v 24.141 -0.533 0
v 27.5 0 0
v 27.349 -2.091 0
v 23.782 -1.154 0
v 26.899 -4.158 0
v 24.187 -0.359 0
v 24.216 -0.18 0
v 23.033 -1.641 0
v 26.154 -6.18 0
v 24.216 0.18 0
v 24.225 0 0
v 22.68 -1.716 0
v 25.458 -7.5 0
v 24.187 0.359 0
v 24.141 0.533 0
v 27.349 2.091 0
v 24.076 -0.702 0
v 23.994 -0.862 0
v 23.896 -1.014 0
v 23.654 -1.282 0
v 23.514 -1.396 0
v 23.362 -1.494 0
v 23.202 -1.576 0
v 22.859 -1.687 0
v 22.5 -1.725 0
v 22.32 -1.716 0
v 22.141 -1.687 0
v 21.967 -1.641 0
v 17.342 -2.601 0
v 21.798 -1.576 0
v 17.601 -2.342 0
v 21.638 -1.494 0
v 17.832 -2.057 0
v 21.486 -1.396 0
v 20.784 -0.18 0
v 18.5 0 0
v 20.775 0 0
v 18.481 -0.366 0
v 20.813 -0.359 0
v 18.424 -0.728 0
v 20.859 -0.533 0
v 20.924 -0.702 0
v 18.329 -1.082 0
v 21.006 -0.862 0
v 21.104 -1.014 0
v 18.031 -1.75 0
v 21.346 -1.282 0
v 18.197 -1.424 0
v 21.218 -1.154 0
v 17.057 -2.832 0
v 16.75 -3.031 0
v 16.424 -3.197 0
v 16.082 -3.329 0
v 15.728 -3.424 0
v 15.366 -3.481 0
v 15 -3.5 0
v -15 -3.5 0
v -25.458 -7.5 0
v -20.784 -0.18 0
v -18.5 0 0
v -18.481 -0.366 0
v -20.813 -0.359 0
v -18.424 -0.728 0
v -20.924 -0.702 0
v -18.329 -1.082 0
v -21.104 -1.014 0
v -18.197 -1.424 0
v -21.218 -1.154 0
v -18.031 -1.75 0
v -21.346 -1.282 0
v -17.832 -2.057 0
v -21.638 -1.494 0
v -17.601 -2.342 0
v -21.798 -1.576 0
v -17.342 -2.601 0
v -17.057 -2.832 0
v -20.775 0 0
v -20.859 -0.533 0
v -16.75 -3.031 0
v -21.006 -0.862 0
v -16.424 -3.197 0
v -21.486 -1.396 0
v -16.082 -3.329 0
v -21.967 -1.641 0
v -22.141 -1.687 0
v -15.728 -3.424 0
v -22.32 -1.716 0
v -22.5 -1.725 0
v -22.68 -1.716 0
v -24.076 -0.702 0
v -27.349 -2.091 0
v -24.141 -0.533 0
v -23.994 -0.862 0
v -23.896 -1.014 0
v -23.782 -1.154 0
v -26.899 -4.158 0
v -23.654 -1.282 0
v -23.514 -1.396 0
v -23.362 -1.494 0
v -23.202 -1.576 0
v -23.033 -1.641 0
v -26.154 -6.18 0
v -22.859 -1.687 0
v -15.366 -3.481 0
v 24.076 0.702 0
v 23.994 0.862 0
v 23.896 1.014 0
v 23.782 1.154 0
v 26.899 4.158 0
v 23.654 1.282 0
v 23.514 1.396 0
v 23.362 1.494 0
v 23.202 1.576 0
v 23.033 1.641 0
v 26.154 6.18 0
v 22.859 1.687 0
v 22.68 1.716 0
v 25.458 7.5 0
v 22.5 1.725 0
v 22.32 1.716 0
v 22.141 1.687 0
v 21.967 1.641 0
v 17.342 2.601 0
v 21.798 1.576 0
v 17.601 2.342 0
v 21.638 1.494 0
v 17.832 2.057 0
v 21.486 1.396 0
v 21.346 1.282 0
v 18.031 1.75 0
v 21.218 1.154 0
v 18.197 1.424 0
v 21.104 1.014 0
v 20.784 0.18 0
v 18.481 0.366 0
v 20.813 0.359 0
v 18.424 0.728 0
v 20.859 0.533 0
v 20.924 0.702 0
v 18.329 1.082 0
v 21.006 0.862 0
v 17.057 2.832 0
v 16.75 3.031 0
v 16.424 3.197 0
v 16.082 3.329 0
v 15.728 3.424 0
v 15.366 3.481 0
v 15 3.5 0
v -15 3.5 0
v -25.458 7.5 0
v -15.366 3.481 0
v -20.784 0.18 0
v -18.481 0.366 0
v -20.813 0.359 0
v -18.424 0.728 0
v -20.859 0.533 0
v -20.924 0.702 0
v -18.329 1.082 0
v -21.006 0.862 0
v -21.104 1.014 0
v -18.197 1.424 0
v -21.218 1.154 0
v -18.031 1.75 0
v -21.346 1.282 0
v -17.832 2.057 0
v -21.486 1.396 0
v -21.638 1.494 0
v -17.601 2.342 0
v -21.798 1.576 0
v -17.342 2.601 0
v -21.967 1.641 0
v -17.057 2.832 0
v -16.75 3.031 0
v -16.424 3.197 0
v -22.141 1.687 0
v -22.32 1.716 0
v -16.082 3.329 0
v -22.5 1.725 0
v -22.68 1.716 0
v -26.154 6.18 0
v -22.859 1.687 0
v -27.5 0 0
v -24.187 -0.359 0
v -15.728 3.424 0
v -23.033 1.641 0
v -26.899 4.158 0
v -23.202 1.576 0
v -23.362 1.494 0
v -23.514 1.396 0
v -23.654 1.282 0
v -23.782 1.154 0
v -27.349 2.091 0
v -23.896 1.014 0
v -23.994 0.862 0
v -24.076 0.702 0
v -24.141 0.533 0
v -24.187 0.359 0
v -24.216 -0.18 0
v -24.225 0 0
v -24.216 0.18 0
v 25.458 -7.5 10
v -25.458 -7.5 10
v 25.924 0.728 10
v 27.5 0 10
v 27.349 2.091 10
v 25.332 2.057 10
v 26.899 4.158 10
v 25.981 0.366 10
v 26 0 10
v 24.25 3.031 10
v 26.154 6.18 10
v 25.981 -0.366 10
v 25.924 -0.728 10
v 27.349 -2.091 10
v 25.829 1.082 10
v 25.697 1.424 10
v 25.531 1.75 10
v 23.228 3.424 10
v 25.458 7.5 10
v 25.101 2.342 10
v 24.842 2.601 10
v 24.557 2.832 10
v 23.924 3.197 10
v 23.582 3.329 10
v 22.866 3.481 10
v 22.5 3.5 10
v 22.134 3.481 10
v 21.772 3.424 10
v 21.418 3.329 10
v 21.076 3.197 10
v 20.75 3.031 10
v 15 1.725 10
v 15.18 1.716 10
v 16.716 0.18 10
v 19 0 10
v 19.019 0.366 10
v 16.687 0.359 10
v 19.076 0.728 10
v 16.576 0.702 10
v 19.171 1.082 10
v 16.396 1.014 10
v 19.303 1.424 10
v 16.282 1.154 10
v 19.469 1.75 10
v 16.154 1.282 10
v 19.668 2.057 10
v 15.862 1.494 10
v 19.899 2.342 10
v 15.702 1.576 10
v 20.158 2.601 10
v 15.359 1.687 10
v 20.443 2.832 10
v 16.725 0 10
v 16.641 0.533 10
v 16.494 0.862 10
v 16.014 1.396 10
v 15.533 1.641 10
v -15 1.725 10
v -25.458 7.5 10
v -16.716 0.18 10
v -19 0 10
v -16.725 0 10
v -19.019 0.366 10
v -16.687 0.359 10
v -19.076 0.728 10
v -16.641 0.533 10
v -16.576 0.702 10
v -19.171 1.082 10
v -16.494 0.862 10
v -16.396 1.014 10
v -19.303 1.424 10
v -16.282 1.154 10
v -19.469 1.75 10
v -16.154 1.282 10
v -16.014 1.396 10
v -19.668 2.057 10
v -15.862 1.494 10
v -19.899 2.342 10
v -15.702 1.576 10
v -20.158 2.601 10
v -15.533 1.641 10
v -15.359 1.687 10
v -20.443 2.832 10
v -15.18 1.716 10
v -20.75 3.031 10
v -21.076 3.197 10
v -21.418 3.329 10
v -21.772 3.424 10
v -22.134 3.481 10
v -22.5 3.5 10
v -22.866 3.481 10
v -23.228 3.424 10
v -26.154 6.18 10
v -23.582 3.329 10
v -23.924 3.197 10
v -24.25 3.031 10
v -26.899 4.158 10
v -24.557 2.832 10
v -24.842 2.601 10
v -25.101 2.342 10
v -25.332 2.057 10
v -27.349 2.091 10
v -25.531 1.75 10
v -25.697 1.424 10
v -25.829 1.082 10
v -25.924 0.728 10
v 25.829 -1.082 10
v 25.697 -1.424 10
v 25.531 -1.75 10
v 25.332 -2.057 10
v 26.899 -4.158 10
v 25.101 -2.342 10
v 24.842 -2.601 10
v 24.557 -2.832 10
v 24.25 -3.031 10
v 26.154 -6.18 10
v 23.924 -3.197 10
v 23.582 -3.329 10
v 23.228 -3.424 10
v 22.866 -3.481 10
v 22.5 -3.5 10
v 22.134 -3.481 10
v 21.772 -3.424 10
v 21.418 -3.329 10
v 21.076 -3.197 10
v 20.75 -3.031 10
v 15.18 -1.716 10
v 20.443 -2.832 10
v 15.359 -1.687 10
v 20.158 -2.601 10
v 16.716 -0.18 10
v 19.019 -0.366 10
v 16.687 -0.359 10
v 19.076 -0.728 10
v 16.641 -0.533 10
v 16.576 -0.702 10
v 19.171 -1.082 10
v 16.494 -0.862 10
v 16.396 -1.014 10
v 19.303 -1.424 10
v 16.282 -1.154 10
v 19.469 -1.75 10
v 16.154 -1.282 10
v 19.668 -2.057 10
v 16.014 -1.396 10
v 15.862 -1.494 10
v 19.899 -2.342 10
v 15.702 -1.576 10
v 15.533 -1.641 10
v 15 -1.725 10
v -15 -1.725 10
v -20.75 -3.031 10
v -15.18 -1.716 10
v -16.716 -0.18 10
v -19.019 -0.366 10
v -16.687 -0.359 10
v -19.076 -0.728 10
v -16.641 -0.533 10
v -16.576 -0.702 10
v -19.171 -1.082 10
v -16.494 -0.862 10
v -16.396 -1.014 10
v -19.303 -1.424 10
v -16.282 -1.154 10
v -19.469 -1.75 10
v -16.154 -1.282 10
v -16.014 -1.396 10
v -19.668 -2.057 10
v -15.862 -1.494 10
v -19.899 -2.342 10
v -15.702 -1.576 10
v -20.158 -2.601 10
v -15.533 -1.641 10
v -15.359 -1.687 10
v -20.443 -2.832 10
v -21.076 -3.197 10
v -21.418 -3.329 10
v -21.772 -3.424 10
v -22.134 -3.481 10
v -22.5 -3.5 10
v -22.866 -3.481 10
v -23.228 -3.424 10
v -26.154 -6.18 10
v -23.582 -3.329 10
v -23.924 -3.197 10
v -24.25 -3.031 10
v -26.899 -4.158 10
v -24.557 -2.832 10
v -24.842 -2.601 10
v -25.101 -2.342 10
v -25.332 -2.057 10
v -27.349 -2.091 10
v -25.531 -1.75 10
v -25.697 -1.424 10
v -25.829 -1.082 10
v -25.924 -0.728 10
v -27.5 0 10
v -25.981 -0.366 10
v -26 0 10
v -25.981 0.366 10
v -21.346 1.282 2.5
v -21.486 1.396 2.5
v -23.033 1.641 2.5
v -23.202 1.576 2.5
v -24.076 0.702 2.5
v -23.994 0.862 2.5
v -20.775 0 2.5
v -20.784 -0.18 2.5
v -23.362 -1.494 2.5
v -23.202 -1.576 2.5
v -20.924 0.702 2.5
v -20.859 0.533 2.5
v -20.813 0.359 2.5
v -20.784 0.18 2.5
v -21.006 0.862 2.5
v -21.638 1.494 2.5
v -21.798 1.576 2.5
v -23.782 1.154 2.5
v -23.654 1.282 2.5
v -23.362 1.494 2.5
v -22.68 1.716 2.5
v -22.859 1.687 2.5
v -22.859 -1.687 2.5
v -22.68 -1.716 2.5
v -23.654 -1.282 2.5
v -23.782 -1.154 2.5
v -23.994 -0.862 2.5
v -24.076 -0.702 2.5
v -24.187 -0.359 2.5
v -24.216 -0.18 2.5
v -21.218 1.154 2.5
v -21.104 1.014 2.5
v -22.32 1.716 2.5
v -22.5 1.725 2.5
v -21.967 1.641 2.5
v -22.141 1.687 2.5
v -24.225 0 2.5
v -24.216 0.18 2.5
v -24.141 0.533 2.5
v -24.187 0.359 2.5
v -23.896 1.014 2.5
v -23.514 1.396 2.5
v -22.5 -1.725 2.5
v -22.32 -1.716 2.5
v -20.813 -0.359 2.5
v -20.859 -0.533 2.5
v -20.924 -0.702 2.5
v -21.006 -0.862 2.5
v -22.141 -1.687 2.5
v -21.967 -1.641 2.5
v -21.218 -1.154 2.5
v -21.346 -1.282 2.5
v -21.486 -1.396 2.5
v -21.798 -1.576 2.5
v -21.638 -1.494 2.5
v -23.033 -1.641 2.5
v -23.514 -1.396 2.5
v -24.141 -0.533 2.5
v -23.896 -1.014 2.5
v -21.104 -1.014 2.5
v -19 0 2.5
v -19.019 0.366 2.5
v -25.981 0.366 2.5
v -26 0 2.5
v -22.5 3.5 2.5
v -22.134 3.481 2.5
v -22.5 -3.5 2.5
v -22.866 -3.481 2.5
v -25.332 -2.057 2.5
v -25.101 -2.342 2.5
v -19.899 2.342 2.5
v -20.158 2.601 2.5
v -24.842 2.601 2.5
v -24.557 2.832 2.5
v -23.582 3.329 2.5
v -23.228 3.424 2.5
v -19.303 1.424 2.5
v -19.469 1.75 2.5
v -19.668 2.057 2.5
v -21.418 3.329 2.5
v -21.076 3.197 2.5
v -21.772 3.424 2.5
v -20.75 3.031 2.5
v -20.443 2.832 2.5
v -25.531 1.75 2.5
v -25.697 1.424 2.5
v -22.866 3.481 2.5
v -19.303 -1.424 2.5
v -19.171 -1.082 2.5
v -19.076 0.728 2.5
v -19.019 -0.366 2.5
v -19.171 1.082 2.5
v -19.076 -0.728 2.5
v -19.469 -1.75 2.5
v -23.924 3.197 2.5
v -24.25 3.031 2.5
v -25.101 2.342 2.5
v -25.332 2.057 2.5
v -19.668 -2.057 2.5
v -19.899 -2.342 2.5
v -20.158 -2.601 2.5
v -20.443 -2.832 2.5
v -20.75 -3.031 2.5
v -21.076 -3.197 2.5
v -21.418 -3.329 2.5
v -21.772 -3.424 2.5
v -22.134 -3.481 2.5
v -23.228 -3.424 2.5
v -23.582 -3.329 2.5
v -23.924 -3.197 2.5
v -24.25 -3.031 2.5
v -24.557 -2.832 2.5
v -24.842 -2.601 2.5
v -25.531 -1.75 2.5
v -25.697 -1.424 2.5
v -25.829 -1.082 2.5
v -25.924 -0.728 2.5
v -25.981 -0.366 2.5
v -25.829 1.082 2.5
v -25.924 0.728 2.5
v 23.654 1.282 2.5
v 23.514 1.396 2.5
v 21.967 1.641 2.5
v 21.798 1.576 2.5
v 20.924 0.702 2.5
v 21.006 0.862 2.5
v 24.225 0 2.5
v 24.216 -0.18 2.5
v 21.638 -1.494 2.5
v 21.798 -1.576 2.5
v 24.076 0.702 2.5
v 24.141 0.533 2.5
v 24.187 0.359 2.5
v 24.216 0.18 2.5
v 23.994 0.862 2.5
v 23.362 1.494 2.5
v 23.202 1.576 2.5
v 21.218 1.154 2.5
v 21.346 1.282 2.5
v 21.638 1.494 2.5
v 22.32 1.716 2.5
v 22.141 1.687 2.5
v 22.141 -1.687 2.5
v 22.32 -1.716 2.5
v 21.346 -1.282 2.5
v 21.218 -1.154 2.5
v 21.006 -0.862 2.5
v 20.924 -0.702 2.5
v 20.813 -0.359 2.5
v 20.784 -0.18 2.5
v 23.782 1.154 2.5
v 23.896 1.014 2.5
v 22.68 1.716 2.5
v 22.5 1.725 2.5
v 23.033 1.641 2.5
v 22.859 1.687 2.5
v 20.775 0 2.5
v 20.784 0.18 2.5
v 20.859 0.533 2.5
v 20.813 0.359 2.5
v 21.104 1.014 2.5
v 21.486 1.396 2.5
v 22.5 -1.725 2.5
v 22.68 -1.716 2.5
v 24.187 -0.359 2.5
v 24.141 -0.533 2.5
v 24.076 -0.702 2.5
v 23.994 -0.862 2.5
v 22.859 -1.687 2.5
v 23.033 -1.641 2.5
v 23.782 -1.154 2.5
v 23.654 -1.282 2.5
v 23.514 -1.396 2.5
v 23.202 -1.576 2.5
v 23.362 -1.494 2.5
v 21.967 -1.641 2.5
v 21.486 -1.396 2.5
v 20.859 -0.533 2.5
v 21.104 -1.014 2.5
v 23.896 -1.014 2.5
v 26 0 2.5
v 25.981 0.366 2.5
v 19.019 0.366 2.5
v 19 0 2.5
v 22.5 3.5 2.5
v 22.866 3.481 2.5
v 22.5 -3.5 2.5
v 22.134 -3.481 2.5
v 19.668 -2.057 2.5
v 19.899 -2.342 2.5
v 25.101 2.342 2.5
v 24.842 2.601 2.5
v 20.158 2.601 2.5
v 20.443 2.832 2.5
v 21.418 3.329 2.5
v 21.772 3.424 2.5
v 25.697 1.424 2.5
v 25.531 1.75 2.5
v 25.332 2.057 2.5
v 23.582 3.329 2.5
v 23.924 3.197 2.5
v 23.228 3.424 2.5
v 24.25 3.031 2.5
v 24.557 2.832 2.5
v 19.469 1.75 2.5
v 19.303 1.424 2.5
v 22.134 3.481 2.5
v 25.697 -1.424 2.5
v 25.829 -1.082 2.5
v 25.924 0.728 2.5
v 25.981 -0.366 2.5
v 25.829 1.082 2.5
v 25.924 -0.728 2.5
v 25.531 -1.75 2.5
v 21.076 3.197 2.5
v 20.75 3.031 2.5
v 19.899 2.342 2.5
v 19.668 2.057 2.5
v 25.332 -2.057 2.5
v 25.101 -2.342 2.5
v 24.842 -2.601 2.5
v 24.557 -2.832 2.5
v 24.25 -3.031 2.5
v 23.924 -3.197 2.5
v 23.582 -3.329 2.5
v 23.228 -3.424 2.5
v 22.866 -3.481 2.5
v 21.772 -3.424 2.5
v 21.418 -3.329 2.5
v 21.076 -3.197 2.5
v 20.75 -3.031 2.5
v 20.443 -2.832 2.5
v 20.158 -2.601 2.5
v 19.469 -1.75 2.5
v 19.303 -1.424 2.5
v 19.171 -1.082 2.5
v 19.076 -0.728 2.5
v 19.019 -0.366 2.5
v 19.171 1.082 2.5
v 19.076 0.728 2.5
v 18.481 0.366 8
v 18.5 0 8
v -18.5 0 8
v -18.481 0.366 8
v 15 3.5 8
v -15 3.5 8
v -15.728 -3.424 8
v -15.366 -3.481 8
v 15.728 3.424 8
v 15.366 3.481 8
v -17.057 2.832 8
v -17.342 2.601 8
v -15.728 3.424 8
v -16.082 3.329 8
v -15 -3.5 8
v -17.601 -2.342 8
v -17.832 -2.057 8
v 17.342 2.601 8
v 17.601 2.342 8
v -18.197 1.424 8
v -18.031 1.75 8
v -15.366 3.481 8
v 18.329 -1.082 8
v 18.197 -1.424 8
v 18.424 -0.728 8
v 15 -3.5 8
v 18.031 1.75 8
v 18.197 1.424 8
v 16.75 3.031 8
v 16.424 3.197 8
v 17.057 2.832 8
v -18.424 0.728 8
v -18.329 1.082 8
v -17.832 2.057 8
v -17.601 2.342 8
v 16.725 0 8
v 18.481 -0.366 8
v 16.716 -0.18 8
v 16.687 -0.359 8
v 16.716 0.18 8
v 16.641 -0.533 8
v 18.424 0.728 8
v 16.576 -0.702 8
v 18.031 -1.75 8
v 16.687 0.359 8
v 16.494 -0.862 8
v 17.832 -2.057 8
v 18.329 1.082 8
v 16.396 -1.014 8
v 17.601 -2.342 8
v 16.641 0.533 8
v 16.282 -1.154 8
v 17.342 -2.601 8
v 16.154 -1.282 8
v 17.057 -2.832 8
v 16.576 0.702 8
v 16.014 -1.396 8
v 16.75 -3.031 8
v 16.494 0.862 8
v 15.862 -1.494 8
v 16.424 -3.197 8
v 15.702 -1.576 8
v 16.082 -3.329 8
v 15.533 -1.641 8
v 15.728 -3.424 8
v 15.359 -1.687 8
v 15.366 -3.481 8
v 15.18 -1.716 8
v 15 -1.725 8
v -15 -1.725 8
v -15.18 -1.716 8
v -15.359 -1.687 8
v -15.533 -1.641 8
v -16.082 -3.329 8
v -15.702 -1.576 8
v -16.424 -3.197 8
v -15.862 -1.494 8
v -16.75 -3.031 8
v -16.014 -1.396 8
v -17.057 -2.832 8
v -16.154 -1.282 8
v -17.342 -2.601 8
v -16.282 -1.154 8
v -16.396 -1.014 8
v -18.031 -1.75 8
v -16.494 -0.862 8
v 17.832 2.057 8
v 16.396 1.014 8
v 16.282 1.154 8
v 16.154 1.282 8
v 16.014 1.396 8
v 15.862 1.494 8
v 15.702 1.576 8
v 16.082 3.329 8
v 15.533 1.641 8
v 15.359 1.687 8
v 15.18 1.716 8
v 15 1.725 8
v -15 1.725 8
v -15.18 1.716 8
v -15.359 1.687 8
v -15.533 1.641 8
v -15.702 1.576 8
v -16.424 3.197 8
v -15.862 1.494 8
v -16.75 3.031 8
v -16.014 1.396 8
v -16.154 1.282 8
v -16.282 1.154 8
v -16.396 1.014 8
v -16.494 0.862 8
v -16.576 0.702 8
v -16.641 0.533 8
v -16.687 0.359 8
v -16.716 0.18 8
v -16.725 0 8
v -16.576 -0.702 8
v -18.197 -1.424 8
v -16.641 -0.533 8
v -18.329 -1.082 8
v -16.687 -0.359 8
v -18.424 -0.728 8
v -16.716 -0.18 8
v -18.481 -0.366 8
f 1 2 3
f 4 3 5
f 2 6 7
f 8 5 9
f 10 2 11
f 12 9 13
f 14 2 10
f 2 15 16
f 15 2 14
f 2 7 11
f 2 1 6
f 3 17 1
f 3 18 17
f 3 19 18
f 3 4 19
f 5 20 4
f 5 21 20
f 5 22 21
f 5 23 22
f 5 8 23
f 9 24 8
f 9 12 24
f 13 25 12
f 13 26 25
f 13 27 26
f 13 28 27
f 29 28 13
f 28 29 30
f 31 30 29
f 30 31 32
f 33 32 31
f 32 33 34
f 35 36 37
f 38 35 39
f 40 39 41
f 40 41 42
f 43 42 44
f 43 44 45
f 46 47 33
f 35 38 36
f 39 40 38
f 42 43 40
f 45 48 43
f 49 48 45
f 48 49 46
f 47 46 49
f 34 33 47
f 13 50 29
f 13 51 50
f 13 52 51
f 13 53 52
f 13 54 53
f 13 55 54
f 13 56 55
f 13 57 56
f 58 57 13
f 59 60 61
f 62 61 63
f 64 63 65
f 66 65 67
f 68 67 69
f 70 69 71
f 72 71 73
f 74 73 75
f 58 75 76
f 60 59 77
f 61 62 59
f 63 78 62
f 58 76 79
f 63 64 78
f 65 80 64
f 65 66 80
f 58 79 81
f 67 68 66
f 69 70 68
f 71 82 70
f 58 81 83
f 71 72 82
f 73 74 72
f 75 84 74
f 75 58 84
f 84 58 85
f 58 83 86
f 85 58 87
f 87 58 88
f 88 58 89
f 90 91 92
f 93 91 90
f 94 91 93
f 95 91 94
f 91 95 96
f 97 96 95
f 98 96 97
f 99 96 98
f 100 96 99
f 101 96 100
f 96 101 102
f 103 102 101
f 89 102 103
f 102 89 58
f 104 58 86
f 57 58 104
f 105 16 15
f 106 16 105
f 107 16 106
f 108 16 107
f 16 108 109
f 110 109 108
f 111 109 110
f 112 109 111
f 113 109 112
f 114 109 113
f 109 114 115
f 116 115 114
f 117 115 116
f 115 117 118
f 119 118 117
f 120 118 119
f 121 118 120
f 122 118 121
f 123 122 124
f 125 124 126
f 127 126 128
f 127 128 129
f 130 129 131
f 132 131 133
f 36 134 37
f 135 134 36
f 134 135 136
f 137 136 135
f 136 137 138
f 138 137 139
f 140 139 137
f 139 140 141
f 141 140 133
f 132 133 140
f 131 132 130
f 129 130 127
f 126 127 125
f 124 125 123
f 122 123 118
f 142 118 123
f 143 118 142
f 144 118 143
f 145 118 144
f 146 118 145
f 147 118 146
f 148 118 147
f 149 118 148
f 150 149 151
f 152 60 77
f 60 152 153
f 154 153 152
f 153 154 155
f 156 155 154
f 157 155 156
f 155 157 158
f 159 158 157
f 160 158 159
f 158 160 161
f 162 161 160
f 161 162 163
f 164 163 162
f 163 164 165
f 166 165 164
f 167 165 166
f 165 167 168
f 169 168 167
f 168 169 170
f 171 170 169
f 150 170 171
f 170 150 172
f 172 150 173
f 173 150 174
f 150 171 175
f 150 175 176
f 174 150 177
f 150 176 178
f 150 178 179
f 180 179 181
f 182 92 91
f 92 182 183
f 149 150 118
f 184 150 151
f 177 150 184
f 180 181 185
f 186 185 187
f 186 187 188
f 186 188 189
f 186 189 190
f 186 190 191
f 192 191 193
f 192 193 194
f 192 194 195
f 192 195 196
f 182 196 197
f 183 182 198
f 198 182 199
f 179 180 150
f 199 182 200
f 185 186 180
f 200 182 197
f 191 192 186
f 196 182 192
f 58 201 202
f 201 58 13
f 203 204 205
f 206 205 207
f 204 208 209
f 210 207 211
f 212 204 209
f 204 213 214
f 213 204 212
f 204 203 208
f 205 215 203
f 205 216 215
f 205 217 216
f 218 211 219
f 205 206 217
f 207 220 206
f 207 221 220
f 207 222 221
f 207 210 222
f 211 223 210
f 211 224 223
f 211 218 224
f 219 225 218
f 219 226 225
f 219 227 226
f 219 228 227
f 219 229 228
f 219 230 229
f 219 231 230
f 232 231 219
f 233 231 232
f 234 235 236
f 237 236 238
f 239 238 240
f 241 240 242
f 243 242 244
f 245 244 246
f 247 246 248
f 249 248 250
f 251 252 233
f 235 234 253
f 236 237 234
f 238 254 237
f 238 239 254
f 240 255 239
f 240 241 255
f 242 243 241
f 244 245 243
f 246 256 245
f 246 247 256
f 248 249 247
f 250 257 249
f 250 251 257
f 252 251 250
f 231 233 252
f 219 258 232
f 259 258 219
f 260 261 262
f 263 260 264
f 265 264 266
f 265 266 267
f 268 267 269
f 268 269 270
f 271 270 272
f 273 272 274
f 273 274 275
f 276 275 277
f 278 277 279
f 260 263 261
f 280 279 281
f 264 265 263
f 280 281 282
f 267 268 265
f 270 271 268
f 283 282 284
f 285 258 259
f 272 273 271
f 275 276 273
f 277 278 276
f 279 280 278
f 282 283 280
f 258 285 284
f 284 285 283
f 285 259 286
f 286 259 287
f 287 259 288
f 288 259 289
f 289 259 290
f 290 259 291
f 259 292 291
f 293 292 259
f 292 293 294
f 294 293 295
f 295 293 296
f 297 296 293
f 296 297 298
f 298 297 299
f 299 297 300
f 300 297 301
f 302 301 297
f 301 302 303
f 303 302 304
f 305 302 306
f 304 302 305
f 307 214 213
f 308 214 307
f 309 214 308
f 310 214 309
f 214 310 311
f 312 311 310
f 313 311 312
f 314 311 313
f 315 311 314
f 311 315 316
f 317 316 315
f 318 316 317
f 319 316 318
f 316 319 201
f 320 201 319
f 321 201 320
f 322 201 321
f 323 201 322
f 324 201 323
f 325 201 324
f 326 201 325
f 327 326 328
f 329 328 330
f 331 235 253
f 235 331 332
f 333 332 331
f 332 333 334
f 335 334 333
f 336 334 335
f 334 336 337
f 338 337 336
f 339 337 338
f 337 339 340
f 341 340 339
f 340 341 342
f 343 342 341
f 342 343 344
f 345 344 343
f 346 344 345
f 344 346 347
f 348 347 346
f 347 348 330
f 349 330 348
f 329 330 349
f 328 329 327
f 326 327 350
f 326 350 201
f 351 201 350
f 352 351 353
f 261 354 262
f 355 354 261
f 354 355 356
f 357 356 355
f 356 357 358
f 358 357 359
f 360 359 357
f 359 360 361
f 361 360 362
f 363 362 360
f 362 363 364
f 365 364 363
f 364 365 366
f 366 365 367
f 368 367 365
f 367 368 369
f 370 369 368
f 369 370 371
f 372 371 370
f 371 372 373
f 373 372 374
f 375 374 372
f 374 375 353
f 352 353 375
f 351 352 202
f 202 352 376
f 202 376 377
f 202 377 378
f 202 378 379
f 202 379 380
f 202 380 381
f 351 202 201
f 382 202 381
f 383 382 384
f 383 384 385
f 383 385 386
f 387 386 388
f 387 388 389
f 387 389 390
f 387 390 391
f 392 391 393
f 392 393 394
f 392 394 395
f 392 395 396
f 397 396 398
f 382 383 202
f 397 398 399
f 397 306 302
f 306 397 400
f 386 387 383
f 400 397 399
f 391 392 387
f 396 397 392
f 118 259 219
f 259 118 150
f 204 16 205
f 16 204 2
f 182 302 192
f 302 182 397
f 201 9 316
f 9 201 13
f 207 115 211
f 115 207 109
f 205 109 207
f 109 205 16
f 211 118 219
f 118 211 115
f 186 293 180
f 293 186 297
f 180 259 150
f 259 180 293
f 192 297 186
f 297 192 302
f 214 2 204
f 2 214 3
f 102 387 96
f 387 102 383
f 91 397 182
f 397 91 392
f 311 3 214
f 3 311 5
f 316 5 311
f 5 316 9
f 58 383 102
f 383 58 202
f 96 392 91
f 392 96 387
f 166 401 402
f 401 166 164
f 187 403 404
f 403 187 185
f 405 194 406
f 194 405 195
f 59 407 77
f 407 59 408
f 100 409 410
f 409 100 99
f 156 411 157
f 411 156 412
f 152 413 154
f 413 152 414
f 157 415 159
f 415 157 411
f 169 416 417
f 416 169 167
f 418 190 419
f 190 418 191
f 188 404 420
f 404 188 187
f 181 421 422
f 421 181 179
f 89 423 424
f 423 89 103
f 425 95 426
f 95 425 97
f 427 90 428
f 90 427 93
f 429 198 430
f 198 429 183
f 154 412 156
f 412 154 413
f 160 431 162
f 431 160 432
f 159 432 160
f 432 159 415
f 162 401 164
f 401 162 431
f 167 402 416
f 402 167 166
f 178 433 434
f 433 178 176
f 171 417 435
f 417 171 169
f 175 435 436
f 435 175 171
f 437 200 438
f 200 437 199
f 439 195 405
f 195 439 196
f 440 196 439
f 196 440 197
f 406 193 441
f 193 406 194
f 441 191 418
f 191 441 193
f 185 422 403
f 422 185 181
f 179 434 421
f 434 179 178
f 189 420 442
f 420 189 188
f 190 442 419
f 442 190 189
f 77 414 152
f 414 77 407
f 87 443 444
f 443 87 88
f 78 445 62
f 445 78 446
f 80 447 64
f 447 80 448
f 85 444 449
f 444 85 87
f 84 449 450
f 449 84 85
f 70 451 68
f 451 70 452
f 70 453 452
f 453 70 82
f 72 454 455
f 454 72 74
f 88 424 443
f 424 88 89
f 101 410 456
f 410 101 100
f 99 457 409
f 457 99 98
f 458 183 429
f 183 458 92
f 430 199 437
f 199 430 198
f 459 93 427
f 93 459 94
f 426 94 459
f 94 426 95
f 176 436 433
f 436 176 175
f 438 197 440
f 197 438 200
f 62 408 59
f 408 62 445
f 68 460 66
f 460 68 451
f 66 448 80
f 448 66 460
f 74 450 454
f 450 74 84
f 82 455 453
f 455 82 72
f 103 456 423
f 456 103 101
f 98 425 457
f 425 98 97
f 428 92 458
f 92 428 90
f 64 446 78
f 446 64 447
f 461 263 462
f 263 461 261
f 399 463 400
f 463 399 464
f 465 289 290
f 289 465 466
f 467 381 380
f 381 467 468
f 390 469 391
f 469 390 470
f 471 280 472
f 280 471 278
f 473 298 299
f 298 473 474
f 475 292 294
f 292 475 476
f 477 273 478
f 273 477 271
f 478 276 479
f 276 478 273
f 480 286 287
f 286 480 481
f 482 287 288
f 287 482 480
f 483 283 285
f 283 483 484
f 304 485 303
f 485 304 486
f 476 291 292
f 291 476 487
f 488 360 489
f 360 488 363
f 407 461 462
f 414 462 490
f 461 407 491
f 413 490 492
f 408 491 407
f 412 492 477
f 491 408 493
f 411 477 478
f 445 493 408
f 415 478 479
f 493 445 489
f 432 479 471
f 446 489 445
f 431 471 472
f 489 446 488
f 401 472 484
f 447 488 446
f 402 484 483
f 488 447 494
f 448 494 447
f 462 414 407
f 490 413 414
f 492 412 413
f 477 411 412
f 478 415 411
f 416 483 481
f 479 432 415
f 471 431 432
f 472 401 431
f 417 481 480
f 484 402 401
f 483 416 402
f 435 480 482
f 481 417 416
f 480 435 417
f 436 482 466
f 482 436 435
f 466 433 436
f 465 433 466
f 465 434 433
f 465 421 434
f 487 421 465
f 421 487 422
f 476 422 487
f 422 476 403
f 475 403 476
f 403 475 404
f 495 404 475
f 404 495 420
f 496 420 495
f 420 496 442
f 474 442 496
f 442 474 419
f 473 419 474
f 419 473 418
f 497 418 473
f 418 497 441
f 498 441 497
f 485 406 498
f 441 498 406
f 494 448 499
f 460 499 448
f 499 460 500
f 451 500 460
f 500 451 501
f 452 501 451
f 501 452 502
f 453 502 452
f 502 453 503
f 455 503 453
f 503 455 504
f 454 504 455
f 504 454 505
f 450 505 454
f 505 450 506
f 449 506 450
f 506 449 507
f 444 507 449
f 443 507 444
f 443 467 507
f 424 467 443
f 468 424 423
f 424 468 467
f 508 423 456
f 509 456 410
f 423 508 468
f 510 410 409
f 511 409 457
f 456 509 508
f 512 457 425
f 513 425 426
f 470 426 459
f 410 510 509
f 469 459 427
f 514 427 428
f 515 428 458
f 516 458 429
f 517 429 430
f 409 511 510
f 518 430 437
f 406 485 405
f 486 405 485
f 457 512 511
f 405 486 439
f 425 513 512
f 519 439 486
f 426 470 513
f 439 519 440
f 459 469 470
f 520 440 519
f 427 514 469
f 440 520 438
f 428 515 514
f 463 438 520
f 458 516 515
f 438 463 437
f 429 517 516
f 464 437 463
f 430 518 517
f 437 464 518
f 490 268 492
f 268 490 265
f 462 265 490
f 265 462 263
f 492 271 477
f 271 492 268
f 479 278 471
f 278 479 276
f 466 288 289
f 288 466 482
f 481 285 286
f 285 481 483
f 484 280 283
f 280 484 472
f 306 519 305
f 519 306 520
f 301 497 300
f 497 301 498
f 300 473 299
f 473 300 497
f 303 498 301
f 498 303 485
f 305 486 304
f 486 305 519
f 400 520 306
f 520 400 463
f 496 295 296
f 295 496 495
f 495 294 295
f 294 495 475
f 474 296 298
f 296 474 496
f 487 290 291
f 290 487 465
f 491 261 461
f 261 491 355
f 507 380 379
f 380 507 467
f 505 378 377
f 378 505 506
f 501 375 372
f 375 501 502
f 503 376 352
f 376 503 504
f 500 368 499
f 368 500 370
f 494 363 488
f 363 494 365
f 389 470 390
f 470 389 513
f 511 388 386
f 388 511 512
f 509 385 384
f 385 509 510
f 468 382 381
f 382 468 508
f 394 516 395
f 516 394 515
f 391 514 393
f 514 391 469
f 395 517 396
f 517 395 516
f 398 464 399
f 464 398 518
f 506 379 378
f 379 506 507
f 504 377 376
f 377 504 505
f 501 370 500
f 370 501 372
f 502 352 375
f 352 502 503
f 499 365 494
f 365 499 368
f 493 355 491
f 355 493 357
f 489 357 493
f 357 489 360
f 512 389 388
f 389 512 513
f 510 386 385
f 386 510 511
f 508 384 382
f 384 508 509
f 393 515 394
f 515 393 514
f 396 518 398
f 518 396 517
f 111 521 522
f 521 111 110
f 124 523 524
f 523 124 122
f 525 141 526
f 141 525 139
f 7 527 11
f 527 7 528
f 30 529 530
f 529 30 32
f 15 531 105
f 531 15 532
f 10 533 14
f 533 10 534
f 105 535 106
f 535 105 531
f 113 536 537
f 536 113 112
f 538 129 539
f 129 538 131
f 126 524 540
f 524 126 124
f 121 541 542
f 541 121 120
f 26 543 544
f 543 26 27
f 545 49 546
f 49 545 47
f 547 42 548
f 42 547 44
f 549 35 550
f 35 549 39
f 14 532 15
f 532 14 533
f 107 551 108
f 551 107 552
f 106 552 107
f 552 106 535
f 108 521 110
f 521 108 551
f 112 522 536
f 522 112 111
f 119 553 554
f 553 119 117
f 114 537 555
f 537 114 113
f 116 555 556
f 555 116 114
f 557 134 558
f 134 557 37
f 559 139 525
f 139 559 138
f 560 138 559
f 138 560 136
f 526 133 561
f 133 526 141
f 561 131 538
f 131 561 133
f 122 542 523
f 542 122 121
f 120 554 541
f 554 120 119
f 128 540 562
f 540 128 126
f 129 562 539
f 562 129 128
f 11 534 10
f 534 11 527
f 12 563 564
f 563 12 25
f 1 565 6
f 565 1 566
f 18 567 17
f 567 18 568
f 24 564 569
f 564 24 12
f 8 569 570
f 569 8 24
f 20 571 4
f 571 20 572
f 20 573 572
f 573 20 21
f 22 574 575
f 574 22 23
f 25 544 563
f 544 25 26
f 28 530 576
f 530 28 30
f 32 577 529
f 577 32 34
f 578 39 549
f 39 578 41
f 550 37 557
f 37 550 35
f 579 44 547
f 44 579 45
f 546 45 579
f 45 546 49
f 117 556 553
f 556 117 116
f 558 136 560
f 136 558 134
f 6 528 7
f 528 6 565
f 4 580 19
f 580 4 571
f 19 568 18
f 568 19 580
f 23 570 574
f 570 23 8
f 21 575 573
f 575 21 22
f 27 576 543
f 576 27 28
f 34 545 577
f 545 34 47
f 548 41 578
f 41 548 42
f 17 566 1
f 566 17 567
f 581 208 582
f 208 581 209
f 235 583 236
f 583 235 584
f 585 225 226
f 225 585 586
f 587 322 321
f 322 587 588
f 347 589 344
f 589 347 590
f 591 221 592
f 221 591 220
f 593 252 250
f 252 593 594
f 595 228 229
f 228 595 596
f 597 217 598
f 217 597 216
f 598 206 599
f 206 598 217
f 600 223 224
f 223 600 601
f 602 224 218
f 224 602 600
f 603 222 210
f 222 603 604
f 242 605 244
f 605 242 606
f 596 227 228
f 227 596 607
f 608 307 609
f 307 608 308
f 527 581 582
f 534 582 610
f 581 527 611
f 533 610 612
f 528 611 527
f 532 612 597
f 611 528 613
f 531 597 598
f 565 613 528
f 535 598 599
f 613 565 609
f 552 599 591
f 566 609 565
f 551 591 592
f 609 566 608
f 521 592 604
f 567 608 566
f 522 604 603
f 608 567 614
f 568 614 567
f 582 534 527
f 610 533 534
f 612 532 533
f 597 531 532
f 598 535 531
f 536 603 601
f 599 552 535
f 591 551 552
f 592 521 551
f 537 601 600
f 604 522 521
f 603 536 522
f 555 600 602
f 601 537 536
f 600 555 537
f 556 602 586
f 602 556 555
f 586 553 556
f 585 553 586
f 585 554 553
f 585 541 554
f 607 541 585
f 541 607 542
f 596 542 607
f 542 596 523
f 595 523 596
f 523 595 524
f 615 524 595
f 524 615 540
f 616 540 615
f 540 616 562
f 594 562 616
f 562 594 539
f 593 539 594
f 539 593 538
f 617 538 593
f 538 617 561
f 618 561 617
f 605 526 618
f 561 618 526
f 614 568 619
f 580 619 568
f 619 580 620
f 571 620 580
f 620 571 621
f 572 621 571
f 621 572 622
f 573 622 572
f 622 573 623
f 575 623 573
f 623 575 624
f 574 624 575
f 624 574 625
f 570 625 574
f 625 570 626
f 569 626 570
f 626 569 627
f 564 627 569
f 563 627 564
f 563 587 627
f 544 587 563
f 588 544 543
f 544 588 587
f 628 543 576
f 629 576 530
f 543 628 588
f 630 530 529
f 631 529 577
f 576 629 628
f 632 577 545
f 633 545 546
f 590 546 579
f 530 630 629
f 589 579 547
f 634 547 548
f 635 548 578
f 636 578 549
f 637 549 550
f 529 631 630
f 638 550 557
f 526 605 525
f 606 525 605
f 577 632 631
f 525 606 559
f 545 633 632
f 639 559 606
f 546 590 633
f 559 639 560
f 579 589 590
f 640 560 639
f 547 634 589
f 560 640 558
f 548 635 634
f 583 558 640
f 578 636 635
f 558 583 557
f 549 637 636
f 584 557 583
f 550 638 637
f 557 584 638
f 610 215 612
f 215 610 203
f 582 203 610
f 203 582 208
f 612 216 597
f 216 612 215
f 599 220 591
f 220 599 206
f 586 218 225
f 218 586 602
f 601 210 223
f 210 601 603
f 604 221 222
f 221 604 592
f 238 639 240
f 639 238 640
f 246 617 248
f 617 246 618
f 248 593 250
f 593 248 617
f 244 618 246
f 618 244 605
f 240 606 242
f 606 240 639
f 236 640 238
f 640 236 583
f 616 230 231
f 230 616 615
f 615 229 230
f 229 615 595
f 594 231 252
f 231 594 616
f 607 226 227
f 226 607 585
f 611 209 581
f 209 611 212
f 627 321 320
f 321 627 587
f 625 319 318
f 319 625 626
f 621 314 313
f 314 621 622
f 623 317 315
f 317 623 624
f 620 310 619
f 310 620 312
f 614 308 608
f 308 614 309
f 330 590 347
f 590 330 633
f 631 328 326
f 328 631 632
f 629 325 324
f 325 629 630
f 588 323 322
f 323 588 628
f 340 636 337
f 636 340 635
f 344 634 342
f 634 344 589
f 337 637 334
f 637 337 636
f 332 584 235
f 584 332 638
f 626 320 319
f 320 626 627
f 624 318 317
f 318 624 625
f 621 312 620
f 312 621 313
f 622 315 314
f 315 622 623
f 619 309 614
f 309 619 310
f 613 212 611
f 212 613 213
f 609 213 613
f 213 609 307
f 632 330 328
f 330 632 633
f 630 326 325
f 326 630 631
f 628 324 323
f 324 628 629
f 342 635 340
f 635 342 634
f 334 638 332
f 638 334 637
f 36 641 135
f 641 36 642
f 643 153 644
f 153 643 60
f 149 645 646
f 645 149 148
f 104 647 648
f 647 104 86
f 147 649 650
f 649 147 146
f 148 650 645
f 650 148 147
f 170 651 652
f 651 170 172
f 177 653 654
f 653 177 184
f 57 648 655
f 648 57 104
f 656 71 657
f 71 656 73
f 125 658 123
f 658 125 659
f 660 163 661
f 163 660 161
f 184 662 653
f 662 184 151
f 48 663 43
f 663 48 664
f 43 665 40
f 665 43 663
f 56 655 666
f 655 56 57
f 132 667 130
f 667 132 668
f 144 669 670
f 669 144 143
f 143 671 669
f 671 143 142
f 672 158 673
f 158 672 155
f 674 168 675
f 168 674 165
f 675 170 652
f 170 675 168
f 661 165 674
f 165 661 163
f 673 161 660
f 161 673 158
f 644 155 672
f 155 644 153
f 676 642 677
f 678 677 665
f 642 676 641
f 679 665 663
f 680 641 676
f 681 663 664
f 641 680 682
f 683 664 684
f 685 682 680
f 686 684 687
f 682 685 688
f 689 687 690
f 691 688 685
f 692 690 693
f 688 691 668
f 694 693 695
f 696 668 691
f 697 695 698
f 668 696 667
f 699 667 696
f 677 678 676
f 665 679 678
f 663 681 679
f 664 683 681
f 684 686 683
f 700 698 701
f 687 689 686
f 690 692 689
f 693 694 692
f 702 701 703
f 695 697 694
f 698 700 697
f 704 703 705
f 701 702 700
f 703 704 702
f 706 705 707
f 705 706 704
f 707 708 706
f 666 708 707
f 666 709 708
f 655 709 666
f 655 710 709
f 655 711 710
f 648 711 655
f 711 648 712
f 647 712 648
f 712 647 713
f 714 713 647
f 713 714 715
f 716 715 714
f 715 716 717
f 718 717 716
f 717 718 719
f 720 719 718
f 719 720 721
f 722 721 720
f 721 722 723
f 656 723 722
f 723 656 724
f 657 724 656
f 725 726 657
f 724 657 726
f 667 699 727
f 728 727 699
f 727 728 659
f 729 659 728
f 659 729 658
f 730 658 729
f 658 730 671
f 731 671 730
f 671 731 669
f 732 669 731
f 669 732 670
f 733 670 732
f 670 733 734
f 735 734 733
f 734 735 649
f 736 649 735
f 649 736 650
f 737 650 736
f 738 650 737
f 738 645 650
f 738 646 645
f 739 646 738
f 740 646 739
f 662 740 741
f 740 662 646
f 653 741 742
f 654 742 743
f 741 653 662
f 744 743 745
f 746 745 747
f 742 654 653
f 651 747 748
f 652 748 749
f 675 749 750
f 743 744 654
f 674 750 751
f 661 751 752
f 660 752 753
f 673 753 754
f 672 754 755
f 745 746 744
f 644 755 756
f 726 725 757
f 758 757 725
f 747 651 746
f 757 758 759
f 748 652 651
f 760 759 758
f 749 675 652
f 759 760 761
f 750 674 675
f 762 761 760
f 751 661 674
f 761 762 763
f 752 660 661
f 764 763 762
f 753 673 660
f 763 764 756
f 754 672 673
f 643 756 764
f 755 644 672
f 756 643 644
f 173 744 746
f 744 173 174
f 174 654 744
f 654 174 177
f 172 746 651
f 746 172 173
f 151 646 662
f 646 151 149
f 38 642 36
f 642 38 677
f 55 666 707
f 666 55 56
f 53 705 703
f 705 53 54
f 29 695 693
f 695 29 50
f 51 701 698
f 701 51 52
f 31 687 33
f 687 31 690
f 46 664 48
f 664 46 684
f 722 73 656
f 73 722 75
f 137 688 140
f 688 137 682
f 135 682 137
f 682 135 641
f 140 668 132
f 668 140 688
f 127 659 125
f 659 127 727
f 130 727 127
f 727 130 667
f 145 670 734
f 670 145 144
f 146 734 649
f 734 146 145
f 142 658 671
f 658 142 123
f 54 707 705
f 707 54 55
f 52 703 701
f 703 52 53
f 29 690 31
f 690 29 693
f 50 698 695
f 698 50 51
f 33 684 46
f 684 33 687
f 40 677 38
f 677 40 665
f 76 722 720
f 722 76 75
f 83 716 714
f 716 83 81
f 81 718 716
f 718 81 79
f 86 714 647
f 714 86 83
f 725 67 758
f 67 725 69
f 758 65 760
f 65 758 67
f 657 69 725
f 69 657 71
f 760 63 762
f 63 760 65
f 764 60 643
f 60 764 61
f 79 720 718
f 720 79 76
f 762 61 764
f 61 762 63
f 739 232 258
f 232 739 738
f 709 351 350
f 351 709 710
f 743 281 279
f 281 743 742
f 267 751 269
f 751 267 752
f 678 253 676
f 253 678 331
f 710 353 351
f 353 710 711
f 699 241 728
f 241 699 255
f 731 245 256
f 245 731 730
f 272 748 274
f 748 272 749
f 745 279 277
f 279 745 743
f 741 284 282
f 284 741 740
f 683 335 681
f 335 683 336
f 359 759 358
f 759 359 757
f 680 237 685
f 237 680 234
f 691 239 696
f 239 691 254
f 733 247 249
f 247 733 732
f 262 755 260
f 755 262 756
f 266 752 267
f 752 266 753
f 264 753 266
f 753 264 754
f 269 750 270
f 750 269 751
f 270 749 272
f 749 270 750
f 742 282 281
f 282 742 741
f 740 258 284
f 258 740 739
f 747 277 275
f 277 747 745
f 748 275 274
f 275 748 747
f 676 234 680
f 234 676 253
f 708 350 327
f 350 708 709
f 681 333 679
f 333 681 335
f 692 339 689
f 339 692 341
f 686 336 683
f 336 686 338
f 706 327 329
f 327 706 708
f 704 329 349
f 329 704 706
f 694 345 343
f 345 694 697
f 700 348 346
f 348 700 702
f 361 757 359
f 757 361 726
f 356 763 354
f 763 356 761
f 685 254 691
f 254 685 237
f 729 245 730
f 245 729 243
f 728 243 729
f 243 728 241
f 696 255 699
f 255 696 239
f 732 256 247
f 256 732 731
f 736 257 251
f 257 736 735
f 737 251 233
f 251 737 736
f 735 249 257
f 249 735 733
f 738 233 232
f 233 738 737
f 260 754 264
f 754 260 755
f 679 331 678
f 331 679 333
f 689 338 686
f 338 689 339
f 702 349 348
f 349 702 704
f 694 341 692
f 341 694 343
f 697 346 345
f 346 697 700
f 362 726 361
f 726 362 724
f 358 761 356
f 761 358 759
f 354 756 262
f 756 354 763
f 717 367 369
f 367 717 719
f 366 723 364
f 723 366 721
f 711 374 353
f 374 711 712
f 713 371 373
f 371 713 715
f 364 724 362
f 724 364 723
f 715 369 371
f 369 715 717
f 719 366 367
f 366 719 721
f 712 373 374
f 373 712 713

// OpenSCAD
// file: configuration.scad
// Increase this if your slicer or printer make holes too tight.
extra_radius = 0.1;

// OD = outside diameter, corner to corner.
m3_nut_od = 6.1;
m3_nut_radius = m3_nut_od/2 + 0.2 + extra_radius;
m3_nut_thickness = 2.4 + extra_radius;
m3_washer_radius = 3.5 + extra_radius;

// Major diameter of metric 3mm thread.
m3_major = 2.85;
m3_radius = m3_major/2 + extra_radius;
m3_wide_radius = m3_major/2 + extra_radius + 0.2;

// OD = outside diameter, corner to corner.
m4_nut_od = 7.1;
m4_nut_radius = m4_nut_od/2 + 0.2 + extra_radius;
m4_thickness = 3.82 + extra_radius;
m4_washer_radius = 4.5 + extra_radius;

// Major diameter of metric 3mm thread.
m4_major = 3.85;
m4_radius = m4_major/2 + extra_radius;
m4_wide_radius = m4_major/2 + extra_radius + 0.2;

// NEMA17 stepper motors.
motor_shaft_diameter = 5;
motor_shaft_radius = motor_shaft_diameter/2 + extra_radius;

// Frame brackets. M3x8mm screws work best with 3.6 mm brackets.
thickness = 3.6;

// OpenBeam or Misumi. Currently only 15x15 mm, but there is a plan
// to make models more parametric and allow 20x20 mm in the future.
extrusion = 15;

// Placement for the NEMA17 stepper motors.
motor_offset = 44;
motor_length = 47;
// main file
include <configuration.scad>;

$fn = 60;
roundness = 6;

extra = 1;

socket_thickness = 21;
socket_width = 27;
socket_length = 46.5;


module extrusion_cutout(h, extra) {
  difference() {
    cube([extrusion+extra, extrusion+extra, h], center=true);
    for (a = [0:90:359]) rotate([0, 0, a]) {
      translate([extrusion/2, 0, 0])
        cube([6, 2.5, h+1], center=true);
    }
  }
}

module screw_socket() {
  cylinder(r=m3_wide_radius, h=8, center=true);
  translate([0, 0, 3]) cylinder(r=3.5, h=20);
}

module psu_mount() {
  thickness = 2;
  seperation = 10;

  difference() {
    union() {
      intersection() {
        hull() {
          translate([0, 0, thickness/2])
            cube([60, 15, thickness], center=true);
          translate([-0, 0, seperation - thickness/2])
            cube([60, 15, thickness], center=true);
        }
        scale([1.1, 0.8, 1]) cylinder(r=25, h=seperation*3, center=true);
      }
    }
    union() {
      rotate([90, 0, 0]) {
        for(a = [-1, 1]) {
          translate([a*extrusion*1.5, -extrusion/2, 0]) {
            % extrusion_cutout(100+10, 2*extra_radius);
            translate([0, 7, 0]) rotate([-90, 0, 0])
              screw_socket();
          }
        }
      }
      hull() {
        for(a = [-1, 1]) {
          translate([a*30/2, -1, -5]) {
            translate([0, thickness/2, 0]) rotate([0, 0, 0])
              cylinder(r=3.5, h=13);
          }
        }
      }
      hull() {
        for(a = [-1, 1]) {
          translate([a*30/2, -1, 8]) {
            translate([0, thickness/2, 0]) rotate([0, 0, 0])
              cylinder(r=m3_wide_radius, h=20, center=true);
          }
        }
      }
    }
  }
};

psu_mount();
